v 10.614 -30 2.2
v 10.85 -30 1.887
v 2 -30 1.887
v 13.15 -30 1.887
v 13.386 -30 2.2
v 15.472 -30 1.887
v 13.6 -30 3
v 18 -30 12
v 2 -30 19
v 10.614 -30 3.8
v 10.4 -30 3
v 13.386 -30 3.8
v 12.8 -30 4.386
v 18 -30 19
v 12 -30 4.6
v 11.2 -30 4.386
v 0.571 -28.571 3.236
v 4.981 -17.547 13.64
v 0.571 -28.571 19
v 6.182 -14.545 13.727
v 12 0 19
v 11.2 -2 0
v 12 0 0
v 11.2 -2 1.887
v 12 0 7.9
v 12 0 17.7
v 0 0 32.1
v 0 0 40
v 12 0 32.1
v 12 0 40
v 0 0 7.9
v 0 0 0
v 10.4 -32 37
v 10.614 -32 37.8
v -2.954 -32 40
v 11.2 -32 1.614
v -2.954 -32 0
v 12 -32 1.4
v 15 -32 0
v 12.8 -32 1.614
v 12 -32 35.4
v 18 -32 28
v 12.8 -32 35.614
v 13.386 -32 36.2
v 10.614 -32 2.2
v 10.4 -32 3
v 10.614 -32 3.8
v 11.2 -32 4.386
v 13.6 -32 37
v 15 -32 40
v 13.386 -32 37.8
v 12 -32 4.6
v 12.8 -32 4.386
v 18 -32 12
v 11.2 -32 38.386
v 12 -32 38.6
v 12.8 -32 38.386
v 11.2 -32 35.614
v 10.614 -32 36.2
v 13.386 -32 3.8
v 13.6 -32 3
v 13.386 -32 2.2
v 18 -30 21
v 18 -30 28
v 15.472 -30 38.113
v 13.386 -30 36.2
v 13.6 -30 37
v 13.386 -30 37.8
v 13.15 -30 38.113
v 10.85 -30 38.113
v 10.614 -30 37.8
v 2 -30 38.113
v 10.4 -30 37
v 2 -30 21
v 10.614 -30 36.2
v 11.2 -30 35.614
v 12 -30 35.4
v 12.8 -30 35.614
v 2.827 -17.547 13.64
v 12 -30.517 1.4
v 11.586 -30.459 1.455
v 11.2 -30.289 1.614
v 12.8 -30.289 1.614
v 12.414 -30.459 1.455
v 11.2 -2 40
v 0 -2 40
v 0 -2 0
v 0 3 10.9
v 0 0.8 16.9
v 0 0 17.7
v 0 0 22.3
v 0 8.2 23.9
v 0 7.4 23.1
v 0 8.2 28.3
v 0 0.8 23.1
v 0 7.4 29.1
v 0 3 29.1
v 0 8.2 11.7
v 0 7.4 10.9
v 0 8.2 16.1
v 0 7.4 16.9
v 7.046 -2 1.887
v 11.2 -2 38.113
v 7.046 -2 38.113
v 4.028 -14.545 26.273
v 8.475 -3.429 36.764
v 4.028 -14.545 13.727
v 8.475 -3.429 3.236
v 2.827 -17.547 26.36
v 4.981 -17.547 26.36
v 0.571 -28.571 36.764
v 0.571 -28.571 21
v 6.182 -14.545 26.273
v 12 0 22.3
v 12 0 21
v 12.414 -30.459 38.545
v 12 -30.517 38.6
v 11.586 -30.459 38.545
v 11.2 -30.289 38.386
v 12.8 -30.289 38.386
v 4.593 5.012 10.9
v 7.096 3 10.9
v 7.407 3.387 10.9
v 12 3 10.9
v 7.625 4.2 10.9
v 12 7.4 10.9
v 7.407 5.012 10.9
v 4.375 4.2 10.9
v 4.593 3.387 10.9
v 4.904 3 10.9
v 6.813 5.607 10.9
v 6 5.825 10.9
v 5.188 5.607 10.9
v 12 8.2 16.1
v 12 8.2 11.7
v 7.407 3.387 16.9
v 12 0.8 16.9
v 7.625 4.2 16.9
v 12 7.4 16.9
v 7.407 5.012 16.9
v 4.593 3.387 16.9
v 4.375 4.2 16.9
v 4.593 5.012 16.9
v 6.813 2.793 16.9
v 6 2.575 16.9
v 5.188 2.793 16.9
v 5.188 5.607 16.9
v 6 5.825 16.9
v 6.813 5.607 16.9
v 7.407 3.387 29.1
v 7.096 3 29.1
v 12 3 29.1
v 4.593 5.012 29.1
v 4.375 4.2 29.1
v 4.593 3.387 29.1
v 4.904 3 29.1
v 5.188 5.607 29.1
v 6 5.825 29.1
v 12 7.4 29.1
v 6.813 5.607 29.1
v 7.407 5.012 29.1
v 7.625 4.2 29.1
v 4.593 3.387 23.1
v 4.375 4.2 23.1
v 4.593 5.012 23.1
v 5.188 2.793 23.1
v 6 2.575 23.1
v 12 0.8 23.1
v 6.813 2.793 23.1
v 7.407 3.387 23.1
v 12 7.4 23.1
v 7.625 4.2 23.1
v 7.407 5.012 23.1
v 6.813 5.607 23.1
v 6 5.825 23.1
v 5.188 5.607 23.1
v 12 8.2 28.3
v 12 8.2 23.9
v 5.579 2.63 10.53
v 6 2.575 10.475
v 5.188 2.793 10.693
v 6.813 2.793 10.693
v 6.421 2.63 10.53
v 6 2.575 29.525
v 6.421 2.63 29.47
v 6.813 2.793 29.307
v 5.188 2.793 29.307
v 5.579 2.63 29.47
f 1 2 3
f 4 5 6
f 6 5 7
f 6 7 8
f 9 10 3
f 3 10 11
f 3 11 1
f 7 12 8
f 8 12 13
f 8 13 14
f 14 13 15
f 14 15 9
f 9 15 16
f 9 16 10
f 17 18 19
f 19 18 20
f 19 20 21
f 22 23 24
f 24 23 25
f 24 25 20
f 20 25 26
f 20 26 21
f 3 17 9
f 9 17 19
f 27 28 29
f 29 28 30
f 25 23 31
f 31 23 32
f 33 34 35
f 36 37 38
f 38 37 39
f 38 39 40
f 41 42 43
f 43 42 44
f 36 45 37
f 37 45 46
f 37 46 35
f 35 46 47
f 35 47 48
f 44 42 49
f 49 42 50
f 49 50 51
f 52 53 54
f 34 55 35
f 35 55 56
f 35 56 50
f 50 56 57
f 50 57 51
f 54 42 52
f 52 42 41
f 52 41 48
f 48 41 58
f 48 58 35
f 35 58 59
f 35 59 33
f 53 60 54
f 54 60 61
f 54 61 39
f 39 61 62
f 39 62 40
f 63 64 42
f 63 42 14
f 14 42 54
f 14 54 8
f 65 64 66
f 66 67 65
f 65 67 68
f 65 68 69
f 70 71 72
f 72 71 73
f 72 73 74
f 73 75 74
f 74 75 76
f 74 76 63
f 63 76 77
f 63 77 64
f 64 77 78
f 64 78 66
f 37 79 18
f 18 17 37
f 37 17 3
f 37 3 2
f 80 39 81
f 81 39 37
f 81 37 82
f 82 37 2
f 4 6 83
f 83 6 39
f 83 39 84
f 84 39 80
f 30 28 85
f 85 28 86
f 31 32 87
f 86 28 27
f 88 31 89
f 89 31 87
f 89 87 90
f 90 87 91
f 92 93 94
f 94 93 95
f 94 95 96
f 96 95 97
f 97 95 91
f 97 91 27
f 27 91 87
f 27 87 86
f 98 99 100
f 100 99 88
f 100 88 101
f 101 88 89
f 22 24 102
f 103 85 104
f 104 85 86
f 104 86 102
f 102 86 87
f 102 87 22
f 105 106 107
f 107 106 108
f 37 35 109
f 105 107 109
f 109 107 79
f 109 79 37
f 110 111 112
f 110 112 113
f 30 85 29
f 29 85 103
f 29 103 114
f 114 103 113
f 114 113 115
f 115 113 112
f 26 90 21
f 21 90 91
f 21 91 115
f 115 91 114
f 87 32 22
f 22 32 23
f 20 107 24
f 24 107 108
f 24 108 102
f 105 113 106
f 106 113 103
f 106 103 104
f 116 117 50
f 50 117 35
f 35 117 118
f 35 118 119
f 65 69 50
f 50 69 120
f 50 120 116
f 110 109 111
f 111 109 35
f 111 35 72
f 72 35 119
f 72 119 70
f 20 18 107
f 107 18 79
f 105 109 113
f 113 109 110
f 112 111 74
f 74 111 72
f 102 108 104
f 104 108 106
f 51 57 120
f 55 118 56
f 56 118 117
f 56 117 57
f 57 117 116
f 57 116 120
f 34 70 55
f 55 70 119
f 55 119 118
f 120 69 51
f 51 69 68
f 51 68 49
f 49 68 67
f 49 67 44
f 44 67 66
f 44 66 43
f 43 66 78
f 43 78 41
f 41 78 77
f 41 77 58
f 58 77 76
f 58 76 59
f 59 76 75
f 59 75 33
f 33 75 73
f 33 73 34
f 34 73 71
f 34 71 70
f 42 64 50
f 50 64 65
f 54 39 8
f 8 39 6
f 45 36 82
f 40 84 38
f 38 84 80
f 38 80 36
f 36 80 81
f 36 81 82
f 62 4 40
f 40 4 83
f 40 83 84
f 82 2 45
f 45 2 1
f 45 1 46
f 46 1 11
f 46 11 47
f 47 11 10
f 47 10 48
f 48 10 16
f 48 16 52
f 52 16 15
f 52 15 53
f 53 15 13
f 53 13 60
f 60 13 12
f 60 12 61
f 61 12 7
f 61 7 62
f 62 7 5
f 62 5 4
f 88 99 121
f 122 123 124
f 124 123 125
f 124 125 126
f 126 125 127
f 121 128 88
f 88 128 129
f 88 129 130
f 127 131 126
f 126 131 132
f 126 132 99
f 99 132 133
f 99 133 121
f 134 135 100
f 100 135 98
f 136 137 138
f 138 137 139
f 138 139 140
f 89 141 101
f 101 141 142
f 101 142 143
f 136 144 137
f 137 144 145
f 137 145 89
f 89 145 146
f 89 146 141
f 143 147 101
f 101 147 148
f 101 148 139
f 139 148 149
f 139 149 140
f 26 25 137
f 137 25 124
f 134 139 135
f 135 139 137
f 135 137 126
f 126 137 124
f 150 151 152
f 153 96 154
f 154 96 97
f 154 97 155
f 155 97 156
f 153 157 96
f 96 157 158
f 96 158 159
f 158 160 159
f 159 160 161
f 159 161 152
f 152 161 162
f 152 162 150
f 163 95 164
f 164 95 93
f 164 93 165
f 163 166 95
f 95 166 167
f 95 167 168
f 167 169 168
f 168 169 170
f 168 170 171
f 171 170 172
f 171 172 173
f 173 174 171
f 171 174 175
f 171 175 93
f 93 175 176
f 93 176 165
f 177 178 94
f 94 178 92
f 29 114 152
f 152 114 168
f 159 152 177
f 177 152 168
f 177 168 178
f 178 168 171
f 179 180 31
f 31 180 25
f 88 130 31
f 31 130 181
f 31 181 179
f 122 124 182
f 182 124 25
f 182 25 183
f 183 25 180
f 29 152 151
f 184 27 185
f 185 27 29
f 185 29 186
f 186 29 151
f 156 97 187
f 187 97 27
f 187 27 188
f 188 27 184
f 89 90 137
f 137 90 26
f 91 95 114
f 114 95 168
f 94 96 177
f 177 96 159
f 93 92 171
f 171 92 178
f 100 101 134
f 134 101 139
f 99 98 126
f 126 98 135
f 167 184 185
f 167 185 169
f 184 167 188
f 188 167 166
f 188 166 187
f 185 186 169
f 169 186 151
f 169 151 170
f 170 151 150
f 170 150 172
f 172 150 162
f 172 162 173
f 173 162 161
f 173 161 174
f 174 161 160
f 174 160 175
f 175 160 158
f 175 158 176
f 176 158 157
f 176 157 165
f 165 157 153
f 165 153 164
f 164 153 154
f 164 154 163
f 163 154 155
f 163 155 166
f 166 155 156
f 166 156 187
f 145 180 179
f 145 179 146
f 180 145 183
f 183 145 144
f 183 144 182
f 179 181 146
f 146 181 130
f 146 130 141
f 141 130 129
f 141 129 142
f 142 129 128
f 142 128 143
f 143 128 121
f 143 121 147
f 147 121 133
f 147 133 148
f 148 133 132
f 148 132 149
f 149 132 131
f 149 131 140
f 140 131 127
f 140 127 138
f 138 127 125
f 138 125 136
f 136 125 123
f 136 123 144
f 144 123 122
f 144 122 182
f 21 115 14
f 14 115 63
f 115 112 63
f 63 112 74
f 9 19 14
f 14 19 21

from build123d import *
from OCP.BRepFilletAPI import BRepFilletAPI_MakeChamfer

# Parameters (mm, degrees)
BOSS_EXTRUDE1_DEPTH     = 40
CUT_EXTRUDE1_DEPTH      = 30
CUT_EXTRUDE1_DEPTH_BACK = 30
CHAMFER1_SIZE           = 2
CHAMFER1_SIZE2          = 1.538618516
CHAMFER1_SIZE2_2        = 2.126587288
SKETCH3_R               = 1.6
CUT_EXTRUDE2_DEPTH      = 10
SKETCH4_W               = 6
SKETCH4_H               = 8.2
BOSS_EXTRUDE2_DEPTH     = 12
CHAMFER2_SIZE           = 3
CHAMFER3_SIZE           = 0.8
CUT_EXTRUDE3_DEPTH      = 47.848799344
CUT_EXTRUDE3_DEPTH_BACK = 47.848799344
SKETCH5_R               = 1.625
RIB1_REACH              = 43.809
SKETCH8_WALL_W          = 116.212296924
SKETCH8_WALL_H          = 2


with BuildPart() as part:
    # Sketch1 → Boss-Extrude1 (new body)
    with BuildSketch(Plane.XY):
        Polygon((0, 0), (12, 0), (0, -30), (18, -30), (18, -32), (-2.954065923, -32), (9.045934077, -2), (0, -2), align=None)
    extrude(amount=BOSS_EXTRUDE1_DEPTH)

    # Sketch2 → Cut-Extrude1 (cut, two sides: drawn at the far end of the back side and taken through both)
    with BuildSketch(Plane.ZY.offset(-CUT_EXTRUDE1_DEPTH_BACK)):
        Polygon((15.099668871, -16), (1.887458609, -2), (0, -2), (0, -32), align=None)
        Polygon((40, -2), (38.112541391, -2), (24.900331129, -16), (40, -32), align=None)
    extrude(amount=CUT_EXTRUDE1_DEPTH + CUT_EXTRUDE1_DEPTH_BACK, mode=Mode.SUBTRACT)

    # Chamfer1: one chamfer whose edges measure the first distance from different faces: ONE call of the kernel's chamfer builder (chamfer() names one face for all edges)
    chamfer1_edges_1 = [part.edges().sort_by_distance(p)[0] for p in [
        (0, -30, 20),
    ]]
    chamfer1_side_1 = [part.faces().sort_by_distance(p)[0] for p in [
        (9, -30, 20),
    ]]
    chamfer1_edges_2 = [part.edges().sort_by_distance(p)[0] for p in [
        (9.045934077, -2, 20),
    ]]
    chamfer1_side_2 = [part.faces().sort_by_distance(p)[0] for p in [
        (4.646047571, -2, 20),
    ]]
    chamfer1_edges_3 = [part.edges().sort_by_distance(p)[0] for p in [
        (4.522967039, -16, 24.900331129),
    ]]
    chamfer1_side_3 = [part.faces().sort_by_distance(p)[0] for p in [
        (7.322967039, -9, 31.50643626),
    ]]
    chamfer1_edges_4 = [part.edges().sort_by_distance(p)[0] for p in [
        (4.522967039, -16, 15.099668871),
    ]]
    chamfer1_side_4 = [part.faces().sort_by_distance(p)[0] for p in [
        (7.322967039, -9, 8.49356374),
    ]]
    chamfer1 = BRepFilletAPI_MakeChamfer(part.part.solid().wrapped)
    for e in chamfer1_edges_1:
        chamfer1.Add(CHAMFER1_SIZE, CHAMFER1_SIZE2, e.wrapped, chamfer1_side_1[0].wrapped)  # the first distance lies on this face
    for e in chamfer1_edges_2:
        chamfer1.Add(CHAMFER1_SIZE, CHAMFER1_SIZE2, e.wrapped, chamfer1_side_2[0].wrapped)  # the first distance lies on this face
    for e in chamfer1_edges_3:
        chamfer1.Add(CHAMFER1_SIZE, CHAMFER1_SIZE2_2, e.wrapped, chamfer1_side_3[0].wrapped)  # the first distance lies on this face
    for e in chamfer1_edges_4:
        chamfer1.Add(CHAMFER1_SIZE, CHAMFER1_SIZE2_2, e.wrapped, chamfer1_side_4[0].wrapped)  # the first distance lies on this face
    add(Compound.cast(chamfer1.Shape()), mode=Mode.REPLACE)

    # Sketch3 → Cut-Extrude2 (cut)
    with BuildSketch(Plane.XZ.offset(32)):
        Polygon((18, 40), (15, 40), (18, 28), align=None)
        Polygon((18, 0), (18, 12), (15, 0), align=None)
        with Locations(Location((12, 37, 0), (0, 0, 270))):
            Circle(SKETCH3_R)
        with Locations(Location((12, 3, 0), (0, 0, 270))):
            Circle(SKETCH3_R)
    extrude(amount=-CUT_EXTRUDE2_DEPTH, mode=Mode.SUBTRACT)

    # Sketch4 → Boss-Extrude2 (add)
    with BuildSketch(Plane.ZY):
        with Locations((13.9, 4.1)):
            Rectangle(SKETCH4_W, SKETCH4_H)
        with Locations((26.1, 4.1)):
            Rectangle(SKETCH4_W, SKETCH4_H)
    extrude(amount=-BOSS_EXTRUDE2_DEPTH)

    # Chamfer2
    chamfer2_edges = [part.edges().sort_by_distance(p)[0] for p in [
        (6, 0, 10.9),
        (6, 0, 29.1),
    ]]
    chamfer(chamfer2_edges, length=CHAMFER2_SIZE)

    # Chamfer3
    # the kernel refuses this chamfer: 0.8 mm, written as the material it adds along each edge
    with BuildSketch(Plane(origin=(0, 0, 16.9), x_dir=(0, 0.9996219169112966, -0.027495876610587354), z_dir=(1, 0, 0))) as chamfer3_piece_1_section:
        Polygon((CHAMFER3_SIZE * 0.999621916911, CHAMFER3_SIZE * 0.0274958766106), (-CHAMFER3_SIZE * 0.0274958766106, CHAMFER3_SIZE * 0.999621916911), (0, 0), align=None)
    chamfer3_piece_1 = extrude(amount=12, mode=Mode.PRIVATE)
    chamfer3_piece_1 = split(chamfer3_piece_1, bisect_by=Plane(origin=(11.263378783, -1.841553042, 17.163829715), z_dir=(-0.9284766908852594, 0.3713906763541038, 0)), keep=Keep.TOP, mode=Mode.PRIVATE)
    add(chamfer3_piece_1)
    with BuildSketch(Plane(origin=(0, 0, 23.1), x_dir=(0, 0.9996219169112966, 0.027495876610587354), z_dir=(1, 0, 0))) as chamfer3_piece_2_section:
        Polygon((CHAMFER3_SIZE * 0.999621916911, -CHAMFER3_SIZE * 0.0274958766106), (-CHAMFER3_SIZE * 0.0274958766106, -CHAMFER3_SIZE * 0.999621916911), (0, 0), align=None)
    chamfer3_piece_2 = extrude(amount=12, mode=Mode.PRIVATE)
    chamfer3_piece_2 = split(chamfer3_piece_2, bisect_by=Plane(origin=(11.263378783, -1.841553042, 22.836170285), z_dir=(-0.9284766908852594, 0.3713906763541038, 0)), keep=Keep.TOP, mode=Mode.PRIVATE)
    add(chamfer3_piece_2)
    # the kernel refuses this chamfer: 0.8 mm, written as the material it takes off along each edge
    with BuildSketch(Plane(origin=(-2.05734639, 8.2, 10.9), x_dir=(0, -0.9996219169112966, -0.02749587661058733), z_dir=(1, 0, 0)), Plane(origin=(-2.05734639, 8.2, 16.9), x_dir=(0, 0.027495876610587302, -0.9996219169112966), z_dir=(1, 0, 0)), Plane(origin=(-2.05734639, 8.2, 29.1), x_dir=(0, 0.027495876610587302, -0.9996219169112966), z_dir=(1, 0, 0)), Plane(origin=(-2.05734639, 8.2, 23.1), x_dir=(0, -0.9996219169112966, -0.02749587661058736), z_dir=(1, 0, 0))) as chamfer3_2_piece_1:
        Polygon((CHAMFER3_SIZE * 0.999621916911, -CHAMFER3_SIZE * 0.0274958766106), (-CHAMFER3_SIZE * 0.0274958766106, -CHAMFER3_SIZE * 0.999621916911), (0, 0), align=None)
    extrude(amount=16.114692781, mode=Mode.SUBTRACT)

    # Sketch5 → Cut-Extrude3 (cut, two sides: drawn at the far end of the back side and taken through both)
    with BuildSketch(Plane.XY.offset(29.1).offset(-CUT_EXTRUDE3_DEPTH_BACK)):
        with Locations(Location((6, 4.2, 0), (0, 0, 312.399473364))):
            Circle(SKETCH5_R)
    extrude(amount=CUT_EXTRUDE3_DEPTH + CUT_EXTRUDE3_DEPTH_BACK, mode=Mode.SUBTRACT)

    # Sketch8 wall → Rib1 (add, up to next)
    with BuildSketch(Plane(origin=(15, -15, 20), x_dir=(0.196116135138, -0.980580675691, 0), z_dir=(0.980580675691, 0.196116135138, 0)), mode=Mode.PRIVATE) as rib1_sk1:
        Rectangle(SKETCH8_WALL_W, SKETCH8_WALL_H)
    rib1_tool1 = extrude(rib1_sk1.sketch, amount=-RIB1_REACH, mode=Mode.PRIVATE) - part.part
    add(rib1_tool1.solids().sort_by_distance((15, -15, 20))[0])


solid = part.part
